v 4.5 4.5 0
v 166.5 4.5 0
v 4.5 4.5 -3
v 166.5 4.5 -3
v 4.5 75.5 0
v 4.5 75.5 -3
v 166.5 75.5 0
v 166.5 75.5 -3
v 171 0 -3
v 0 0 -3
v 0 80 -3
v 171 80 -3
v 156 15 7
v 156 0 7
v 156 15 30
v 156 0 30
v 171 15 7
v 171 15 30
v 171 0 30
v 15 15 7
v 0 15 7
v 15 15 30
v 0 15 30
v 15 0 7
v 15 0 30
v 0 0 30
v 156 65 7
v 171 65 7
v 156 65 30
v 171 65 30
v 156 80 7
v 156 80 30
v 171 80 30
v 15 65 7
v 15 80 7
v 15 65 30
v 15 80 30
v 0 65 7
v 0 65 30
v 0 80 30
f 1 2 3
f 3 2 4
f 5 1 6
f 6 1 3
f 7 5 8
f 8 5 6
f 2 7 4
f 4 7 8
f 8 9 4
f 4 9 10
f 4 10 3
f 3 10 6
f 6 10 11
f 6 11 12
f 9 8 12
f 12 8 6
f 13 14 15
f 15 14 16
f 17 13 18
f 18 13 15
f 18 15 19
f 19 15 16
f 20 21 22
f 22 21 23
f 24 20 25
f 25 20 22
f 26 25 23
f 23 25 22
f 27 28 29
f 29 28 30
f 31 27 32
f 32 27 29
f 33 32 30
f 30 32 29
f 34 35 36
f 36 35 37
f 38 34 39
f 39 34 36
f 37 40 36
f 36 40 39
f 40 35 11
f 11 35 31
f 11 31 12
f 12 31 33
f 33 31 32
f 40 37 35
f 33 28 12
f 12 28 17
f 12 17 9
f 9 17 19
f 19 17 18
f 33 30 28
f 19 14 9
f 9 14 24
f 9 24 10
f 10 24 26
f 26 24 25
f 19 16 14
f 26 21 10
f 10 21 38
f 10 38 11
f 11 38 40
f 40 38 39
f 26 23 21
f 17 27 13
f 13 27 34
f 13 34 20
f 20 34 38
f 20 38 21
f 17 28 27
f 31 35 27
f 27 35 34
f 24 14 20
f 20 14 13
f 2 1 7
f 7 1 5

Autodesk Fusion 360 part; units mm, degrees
sketch "Sketch1" plane through (0, 0, 0) normal (0, 0, 1) x (1, 0, 0)
  line L0 (0, 0) -> (171, 0)
  line L1 (171, 0) -> (171, 80)
  line L2 (171, 80) -> (0, 80)
  line L3 (0, 80) -> (0, 0)
  dimension "d1" = 80
  dimension "d2" = 171
extrude "Extrude1" add sketch "Sketch1" along normal blind 7
sketch "Sketch2" plane through (0, 0, 7) normal (0, 0, 1) x (-1, 0, 0)
  line L0 (0, -80) -> (0, 0)
  line L1 (0, 0) -> (-171, 0)
  line L2 (-171, 0) -> (-171, -80)
  line L3 (-171, -80) -> (0, -80)
  line L4 (0, 0) -> (-15, 0)
  line L5 (-15, 0) -> (-15, -15)
  line L6 (-15, -15) -> (0, -15)
  line L7 (0, -15) -> (0, 0)
  line L8 (-85.5, 0) -> (-85.5, -80)
  line L9 (-156, 0) -> (-156, -15)
  line L10 (-156, -15) -> (-171, -15)
  line L11 (-171, -15) -> (-171, 0)
  line L12 (-171, 0) -> (-156, 0)
  line L13 (0, -40) -> (-171, -40)
  line L14 (-15, -65) -> (0, -65)
  line L15 (0, -65) -> (0, -80)
  line L16 (0, -80) -> (-15, -80)
  line L17 (-15, -80) -> (-15, -65)
  line L18 (-156, -80) -> (-156, -65)
  line L19 (-156, -65) -> (-171, -65)
  line L20 (-171, -65) -> (-171, -80)
  line L21 (-171, -80) -> (-156, -80)
  dimension "d5" = 15
  dimension "d6" = 15
extrude "Extrude2" add sketch "Sketch2" along normal blind 23 contours L0 L3 L14 L15 L16 L17 | L0 L1 L4 L5 L6 L7 | L2 L3 L18 L19 L20 L21 | L1 L2 L9 L10 L11 L12
sketch "Sketch3" plane through (0, 0, 0) normal (0, 0, -1) x (1, 0, 0)
  line L0 (0, 0) -> (0, -80)
  line L1 (0, -80) -> (171, -80)
  line L2 (171, -80) -> (171, 0)
  line L3 (171, 0) -> (0, 0)
  line L4 (166.5, -4.5) -> (4.5, -4.5)
  line L5 (4.5, -4.5) -> (4.5, -75.5)
  line L6 (4.5, -75.5) -> (166.5, -75.5)
  line L7 (166.5, -75.5) -> (166.5, -4.5)
  dimension "d9" = 4.5
  dimension "d10" = 4.5
  dimension "d11" = 4.5
  dimension "d12" = 4.5
extrude "Extrude3" add sketch "Sketch3" along normal blind 3
